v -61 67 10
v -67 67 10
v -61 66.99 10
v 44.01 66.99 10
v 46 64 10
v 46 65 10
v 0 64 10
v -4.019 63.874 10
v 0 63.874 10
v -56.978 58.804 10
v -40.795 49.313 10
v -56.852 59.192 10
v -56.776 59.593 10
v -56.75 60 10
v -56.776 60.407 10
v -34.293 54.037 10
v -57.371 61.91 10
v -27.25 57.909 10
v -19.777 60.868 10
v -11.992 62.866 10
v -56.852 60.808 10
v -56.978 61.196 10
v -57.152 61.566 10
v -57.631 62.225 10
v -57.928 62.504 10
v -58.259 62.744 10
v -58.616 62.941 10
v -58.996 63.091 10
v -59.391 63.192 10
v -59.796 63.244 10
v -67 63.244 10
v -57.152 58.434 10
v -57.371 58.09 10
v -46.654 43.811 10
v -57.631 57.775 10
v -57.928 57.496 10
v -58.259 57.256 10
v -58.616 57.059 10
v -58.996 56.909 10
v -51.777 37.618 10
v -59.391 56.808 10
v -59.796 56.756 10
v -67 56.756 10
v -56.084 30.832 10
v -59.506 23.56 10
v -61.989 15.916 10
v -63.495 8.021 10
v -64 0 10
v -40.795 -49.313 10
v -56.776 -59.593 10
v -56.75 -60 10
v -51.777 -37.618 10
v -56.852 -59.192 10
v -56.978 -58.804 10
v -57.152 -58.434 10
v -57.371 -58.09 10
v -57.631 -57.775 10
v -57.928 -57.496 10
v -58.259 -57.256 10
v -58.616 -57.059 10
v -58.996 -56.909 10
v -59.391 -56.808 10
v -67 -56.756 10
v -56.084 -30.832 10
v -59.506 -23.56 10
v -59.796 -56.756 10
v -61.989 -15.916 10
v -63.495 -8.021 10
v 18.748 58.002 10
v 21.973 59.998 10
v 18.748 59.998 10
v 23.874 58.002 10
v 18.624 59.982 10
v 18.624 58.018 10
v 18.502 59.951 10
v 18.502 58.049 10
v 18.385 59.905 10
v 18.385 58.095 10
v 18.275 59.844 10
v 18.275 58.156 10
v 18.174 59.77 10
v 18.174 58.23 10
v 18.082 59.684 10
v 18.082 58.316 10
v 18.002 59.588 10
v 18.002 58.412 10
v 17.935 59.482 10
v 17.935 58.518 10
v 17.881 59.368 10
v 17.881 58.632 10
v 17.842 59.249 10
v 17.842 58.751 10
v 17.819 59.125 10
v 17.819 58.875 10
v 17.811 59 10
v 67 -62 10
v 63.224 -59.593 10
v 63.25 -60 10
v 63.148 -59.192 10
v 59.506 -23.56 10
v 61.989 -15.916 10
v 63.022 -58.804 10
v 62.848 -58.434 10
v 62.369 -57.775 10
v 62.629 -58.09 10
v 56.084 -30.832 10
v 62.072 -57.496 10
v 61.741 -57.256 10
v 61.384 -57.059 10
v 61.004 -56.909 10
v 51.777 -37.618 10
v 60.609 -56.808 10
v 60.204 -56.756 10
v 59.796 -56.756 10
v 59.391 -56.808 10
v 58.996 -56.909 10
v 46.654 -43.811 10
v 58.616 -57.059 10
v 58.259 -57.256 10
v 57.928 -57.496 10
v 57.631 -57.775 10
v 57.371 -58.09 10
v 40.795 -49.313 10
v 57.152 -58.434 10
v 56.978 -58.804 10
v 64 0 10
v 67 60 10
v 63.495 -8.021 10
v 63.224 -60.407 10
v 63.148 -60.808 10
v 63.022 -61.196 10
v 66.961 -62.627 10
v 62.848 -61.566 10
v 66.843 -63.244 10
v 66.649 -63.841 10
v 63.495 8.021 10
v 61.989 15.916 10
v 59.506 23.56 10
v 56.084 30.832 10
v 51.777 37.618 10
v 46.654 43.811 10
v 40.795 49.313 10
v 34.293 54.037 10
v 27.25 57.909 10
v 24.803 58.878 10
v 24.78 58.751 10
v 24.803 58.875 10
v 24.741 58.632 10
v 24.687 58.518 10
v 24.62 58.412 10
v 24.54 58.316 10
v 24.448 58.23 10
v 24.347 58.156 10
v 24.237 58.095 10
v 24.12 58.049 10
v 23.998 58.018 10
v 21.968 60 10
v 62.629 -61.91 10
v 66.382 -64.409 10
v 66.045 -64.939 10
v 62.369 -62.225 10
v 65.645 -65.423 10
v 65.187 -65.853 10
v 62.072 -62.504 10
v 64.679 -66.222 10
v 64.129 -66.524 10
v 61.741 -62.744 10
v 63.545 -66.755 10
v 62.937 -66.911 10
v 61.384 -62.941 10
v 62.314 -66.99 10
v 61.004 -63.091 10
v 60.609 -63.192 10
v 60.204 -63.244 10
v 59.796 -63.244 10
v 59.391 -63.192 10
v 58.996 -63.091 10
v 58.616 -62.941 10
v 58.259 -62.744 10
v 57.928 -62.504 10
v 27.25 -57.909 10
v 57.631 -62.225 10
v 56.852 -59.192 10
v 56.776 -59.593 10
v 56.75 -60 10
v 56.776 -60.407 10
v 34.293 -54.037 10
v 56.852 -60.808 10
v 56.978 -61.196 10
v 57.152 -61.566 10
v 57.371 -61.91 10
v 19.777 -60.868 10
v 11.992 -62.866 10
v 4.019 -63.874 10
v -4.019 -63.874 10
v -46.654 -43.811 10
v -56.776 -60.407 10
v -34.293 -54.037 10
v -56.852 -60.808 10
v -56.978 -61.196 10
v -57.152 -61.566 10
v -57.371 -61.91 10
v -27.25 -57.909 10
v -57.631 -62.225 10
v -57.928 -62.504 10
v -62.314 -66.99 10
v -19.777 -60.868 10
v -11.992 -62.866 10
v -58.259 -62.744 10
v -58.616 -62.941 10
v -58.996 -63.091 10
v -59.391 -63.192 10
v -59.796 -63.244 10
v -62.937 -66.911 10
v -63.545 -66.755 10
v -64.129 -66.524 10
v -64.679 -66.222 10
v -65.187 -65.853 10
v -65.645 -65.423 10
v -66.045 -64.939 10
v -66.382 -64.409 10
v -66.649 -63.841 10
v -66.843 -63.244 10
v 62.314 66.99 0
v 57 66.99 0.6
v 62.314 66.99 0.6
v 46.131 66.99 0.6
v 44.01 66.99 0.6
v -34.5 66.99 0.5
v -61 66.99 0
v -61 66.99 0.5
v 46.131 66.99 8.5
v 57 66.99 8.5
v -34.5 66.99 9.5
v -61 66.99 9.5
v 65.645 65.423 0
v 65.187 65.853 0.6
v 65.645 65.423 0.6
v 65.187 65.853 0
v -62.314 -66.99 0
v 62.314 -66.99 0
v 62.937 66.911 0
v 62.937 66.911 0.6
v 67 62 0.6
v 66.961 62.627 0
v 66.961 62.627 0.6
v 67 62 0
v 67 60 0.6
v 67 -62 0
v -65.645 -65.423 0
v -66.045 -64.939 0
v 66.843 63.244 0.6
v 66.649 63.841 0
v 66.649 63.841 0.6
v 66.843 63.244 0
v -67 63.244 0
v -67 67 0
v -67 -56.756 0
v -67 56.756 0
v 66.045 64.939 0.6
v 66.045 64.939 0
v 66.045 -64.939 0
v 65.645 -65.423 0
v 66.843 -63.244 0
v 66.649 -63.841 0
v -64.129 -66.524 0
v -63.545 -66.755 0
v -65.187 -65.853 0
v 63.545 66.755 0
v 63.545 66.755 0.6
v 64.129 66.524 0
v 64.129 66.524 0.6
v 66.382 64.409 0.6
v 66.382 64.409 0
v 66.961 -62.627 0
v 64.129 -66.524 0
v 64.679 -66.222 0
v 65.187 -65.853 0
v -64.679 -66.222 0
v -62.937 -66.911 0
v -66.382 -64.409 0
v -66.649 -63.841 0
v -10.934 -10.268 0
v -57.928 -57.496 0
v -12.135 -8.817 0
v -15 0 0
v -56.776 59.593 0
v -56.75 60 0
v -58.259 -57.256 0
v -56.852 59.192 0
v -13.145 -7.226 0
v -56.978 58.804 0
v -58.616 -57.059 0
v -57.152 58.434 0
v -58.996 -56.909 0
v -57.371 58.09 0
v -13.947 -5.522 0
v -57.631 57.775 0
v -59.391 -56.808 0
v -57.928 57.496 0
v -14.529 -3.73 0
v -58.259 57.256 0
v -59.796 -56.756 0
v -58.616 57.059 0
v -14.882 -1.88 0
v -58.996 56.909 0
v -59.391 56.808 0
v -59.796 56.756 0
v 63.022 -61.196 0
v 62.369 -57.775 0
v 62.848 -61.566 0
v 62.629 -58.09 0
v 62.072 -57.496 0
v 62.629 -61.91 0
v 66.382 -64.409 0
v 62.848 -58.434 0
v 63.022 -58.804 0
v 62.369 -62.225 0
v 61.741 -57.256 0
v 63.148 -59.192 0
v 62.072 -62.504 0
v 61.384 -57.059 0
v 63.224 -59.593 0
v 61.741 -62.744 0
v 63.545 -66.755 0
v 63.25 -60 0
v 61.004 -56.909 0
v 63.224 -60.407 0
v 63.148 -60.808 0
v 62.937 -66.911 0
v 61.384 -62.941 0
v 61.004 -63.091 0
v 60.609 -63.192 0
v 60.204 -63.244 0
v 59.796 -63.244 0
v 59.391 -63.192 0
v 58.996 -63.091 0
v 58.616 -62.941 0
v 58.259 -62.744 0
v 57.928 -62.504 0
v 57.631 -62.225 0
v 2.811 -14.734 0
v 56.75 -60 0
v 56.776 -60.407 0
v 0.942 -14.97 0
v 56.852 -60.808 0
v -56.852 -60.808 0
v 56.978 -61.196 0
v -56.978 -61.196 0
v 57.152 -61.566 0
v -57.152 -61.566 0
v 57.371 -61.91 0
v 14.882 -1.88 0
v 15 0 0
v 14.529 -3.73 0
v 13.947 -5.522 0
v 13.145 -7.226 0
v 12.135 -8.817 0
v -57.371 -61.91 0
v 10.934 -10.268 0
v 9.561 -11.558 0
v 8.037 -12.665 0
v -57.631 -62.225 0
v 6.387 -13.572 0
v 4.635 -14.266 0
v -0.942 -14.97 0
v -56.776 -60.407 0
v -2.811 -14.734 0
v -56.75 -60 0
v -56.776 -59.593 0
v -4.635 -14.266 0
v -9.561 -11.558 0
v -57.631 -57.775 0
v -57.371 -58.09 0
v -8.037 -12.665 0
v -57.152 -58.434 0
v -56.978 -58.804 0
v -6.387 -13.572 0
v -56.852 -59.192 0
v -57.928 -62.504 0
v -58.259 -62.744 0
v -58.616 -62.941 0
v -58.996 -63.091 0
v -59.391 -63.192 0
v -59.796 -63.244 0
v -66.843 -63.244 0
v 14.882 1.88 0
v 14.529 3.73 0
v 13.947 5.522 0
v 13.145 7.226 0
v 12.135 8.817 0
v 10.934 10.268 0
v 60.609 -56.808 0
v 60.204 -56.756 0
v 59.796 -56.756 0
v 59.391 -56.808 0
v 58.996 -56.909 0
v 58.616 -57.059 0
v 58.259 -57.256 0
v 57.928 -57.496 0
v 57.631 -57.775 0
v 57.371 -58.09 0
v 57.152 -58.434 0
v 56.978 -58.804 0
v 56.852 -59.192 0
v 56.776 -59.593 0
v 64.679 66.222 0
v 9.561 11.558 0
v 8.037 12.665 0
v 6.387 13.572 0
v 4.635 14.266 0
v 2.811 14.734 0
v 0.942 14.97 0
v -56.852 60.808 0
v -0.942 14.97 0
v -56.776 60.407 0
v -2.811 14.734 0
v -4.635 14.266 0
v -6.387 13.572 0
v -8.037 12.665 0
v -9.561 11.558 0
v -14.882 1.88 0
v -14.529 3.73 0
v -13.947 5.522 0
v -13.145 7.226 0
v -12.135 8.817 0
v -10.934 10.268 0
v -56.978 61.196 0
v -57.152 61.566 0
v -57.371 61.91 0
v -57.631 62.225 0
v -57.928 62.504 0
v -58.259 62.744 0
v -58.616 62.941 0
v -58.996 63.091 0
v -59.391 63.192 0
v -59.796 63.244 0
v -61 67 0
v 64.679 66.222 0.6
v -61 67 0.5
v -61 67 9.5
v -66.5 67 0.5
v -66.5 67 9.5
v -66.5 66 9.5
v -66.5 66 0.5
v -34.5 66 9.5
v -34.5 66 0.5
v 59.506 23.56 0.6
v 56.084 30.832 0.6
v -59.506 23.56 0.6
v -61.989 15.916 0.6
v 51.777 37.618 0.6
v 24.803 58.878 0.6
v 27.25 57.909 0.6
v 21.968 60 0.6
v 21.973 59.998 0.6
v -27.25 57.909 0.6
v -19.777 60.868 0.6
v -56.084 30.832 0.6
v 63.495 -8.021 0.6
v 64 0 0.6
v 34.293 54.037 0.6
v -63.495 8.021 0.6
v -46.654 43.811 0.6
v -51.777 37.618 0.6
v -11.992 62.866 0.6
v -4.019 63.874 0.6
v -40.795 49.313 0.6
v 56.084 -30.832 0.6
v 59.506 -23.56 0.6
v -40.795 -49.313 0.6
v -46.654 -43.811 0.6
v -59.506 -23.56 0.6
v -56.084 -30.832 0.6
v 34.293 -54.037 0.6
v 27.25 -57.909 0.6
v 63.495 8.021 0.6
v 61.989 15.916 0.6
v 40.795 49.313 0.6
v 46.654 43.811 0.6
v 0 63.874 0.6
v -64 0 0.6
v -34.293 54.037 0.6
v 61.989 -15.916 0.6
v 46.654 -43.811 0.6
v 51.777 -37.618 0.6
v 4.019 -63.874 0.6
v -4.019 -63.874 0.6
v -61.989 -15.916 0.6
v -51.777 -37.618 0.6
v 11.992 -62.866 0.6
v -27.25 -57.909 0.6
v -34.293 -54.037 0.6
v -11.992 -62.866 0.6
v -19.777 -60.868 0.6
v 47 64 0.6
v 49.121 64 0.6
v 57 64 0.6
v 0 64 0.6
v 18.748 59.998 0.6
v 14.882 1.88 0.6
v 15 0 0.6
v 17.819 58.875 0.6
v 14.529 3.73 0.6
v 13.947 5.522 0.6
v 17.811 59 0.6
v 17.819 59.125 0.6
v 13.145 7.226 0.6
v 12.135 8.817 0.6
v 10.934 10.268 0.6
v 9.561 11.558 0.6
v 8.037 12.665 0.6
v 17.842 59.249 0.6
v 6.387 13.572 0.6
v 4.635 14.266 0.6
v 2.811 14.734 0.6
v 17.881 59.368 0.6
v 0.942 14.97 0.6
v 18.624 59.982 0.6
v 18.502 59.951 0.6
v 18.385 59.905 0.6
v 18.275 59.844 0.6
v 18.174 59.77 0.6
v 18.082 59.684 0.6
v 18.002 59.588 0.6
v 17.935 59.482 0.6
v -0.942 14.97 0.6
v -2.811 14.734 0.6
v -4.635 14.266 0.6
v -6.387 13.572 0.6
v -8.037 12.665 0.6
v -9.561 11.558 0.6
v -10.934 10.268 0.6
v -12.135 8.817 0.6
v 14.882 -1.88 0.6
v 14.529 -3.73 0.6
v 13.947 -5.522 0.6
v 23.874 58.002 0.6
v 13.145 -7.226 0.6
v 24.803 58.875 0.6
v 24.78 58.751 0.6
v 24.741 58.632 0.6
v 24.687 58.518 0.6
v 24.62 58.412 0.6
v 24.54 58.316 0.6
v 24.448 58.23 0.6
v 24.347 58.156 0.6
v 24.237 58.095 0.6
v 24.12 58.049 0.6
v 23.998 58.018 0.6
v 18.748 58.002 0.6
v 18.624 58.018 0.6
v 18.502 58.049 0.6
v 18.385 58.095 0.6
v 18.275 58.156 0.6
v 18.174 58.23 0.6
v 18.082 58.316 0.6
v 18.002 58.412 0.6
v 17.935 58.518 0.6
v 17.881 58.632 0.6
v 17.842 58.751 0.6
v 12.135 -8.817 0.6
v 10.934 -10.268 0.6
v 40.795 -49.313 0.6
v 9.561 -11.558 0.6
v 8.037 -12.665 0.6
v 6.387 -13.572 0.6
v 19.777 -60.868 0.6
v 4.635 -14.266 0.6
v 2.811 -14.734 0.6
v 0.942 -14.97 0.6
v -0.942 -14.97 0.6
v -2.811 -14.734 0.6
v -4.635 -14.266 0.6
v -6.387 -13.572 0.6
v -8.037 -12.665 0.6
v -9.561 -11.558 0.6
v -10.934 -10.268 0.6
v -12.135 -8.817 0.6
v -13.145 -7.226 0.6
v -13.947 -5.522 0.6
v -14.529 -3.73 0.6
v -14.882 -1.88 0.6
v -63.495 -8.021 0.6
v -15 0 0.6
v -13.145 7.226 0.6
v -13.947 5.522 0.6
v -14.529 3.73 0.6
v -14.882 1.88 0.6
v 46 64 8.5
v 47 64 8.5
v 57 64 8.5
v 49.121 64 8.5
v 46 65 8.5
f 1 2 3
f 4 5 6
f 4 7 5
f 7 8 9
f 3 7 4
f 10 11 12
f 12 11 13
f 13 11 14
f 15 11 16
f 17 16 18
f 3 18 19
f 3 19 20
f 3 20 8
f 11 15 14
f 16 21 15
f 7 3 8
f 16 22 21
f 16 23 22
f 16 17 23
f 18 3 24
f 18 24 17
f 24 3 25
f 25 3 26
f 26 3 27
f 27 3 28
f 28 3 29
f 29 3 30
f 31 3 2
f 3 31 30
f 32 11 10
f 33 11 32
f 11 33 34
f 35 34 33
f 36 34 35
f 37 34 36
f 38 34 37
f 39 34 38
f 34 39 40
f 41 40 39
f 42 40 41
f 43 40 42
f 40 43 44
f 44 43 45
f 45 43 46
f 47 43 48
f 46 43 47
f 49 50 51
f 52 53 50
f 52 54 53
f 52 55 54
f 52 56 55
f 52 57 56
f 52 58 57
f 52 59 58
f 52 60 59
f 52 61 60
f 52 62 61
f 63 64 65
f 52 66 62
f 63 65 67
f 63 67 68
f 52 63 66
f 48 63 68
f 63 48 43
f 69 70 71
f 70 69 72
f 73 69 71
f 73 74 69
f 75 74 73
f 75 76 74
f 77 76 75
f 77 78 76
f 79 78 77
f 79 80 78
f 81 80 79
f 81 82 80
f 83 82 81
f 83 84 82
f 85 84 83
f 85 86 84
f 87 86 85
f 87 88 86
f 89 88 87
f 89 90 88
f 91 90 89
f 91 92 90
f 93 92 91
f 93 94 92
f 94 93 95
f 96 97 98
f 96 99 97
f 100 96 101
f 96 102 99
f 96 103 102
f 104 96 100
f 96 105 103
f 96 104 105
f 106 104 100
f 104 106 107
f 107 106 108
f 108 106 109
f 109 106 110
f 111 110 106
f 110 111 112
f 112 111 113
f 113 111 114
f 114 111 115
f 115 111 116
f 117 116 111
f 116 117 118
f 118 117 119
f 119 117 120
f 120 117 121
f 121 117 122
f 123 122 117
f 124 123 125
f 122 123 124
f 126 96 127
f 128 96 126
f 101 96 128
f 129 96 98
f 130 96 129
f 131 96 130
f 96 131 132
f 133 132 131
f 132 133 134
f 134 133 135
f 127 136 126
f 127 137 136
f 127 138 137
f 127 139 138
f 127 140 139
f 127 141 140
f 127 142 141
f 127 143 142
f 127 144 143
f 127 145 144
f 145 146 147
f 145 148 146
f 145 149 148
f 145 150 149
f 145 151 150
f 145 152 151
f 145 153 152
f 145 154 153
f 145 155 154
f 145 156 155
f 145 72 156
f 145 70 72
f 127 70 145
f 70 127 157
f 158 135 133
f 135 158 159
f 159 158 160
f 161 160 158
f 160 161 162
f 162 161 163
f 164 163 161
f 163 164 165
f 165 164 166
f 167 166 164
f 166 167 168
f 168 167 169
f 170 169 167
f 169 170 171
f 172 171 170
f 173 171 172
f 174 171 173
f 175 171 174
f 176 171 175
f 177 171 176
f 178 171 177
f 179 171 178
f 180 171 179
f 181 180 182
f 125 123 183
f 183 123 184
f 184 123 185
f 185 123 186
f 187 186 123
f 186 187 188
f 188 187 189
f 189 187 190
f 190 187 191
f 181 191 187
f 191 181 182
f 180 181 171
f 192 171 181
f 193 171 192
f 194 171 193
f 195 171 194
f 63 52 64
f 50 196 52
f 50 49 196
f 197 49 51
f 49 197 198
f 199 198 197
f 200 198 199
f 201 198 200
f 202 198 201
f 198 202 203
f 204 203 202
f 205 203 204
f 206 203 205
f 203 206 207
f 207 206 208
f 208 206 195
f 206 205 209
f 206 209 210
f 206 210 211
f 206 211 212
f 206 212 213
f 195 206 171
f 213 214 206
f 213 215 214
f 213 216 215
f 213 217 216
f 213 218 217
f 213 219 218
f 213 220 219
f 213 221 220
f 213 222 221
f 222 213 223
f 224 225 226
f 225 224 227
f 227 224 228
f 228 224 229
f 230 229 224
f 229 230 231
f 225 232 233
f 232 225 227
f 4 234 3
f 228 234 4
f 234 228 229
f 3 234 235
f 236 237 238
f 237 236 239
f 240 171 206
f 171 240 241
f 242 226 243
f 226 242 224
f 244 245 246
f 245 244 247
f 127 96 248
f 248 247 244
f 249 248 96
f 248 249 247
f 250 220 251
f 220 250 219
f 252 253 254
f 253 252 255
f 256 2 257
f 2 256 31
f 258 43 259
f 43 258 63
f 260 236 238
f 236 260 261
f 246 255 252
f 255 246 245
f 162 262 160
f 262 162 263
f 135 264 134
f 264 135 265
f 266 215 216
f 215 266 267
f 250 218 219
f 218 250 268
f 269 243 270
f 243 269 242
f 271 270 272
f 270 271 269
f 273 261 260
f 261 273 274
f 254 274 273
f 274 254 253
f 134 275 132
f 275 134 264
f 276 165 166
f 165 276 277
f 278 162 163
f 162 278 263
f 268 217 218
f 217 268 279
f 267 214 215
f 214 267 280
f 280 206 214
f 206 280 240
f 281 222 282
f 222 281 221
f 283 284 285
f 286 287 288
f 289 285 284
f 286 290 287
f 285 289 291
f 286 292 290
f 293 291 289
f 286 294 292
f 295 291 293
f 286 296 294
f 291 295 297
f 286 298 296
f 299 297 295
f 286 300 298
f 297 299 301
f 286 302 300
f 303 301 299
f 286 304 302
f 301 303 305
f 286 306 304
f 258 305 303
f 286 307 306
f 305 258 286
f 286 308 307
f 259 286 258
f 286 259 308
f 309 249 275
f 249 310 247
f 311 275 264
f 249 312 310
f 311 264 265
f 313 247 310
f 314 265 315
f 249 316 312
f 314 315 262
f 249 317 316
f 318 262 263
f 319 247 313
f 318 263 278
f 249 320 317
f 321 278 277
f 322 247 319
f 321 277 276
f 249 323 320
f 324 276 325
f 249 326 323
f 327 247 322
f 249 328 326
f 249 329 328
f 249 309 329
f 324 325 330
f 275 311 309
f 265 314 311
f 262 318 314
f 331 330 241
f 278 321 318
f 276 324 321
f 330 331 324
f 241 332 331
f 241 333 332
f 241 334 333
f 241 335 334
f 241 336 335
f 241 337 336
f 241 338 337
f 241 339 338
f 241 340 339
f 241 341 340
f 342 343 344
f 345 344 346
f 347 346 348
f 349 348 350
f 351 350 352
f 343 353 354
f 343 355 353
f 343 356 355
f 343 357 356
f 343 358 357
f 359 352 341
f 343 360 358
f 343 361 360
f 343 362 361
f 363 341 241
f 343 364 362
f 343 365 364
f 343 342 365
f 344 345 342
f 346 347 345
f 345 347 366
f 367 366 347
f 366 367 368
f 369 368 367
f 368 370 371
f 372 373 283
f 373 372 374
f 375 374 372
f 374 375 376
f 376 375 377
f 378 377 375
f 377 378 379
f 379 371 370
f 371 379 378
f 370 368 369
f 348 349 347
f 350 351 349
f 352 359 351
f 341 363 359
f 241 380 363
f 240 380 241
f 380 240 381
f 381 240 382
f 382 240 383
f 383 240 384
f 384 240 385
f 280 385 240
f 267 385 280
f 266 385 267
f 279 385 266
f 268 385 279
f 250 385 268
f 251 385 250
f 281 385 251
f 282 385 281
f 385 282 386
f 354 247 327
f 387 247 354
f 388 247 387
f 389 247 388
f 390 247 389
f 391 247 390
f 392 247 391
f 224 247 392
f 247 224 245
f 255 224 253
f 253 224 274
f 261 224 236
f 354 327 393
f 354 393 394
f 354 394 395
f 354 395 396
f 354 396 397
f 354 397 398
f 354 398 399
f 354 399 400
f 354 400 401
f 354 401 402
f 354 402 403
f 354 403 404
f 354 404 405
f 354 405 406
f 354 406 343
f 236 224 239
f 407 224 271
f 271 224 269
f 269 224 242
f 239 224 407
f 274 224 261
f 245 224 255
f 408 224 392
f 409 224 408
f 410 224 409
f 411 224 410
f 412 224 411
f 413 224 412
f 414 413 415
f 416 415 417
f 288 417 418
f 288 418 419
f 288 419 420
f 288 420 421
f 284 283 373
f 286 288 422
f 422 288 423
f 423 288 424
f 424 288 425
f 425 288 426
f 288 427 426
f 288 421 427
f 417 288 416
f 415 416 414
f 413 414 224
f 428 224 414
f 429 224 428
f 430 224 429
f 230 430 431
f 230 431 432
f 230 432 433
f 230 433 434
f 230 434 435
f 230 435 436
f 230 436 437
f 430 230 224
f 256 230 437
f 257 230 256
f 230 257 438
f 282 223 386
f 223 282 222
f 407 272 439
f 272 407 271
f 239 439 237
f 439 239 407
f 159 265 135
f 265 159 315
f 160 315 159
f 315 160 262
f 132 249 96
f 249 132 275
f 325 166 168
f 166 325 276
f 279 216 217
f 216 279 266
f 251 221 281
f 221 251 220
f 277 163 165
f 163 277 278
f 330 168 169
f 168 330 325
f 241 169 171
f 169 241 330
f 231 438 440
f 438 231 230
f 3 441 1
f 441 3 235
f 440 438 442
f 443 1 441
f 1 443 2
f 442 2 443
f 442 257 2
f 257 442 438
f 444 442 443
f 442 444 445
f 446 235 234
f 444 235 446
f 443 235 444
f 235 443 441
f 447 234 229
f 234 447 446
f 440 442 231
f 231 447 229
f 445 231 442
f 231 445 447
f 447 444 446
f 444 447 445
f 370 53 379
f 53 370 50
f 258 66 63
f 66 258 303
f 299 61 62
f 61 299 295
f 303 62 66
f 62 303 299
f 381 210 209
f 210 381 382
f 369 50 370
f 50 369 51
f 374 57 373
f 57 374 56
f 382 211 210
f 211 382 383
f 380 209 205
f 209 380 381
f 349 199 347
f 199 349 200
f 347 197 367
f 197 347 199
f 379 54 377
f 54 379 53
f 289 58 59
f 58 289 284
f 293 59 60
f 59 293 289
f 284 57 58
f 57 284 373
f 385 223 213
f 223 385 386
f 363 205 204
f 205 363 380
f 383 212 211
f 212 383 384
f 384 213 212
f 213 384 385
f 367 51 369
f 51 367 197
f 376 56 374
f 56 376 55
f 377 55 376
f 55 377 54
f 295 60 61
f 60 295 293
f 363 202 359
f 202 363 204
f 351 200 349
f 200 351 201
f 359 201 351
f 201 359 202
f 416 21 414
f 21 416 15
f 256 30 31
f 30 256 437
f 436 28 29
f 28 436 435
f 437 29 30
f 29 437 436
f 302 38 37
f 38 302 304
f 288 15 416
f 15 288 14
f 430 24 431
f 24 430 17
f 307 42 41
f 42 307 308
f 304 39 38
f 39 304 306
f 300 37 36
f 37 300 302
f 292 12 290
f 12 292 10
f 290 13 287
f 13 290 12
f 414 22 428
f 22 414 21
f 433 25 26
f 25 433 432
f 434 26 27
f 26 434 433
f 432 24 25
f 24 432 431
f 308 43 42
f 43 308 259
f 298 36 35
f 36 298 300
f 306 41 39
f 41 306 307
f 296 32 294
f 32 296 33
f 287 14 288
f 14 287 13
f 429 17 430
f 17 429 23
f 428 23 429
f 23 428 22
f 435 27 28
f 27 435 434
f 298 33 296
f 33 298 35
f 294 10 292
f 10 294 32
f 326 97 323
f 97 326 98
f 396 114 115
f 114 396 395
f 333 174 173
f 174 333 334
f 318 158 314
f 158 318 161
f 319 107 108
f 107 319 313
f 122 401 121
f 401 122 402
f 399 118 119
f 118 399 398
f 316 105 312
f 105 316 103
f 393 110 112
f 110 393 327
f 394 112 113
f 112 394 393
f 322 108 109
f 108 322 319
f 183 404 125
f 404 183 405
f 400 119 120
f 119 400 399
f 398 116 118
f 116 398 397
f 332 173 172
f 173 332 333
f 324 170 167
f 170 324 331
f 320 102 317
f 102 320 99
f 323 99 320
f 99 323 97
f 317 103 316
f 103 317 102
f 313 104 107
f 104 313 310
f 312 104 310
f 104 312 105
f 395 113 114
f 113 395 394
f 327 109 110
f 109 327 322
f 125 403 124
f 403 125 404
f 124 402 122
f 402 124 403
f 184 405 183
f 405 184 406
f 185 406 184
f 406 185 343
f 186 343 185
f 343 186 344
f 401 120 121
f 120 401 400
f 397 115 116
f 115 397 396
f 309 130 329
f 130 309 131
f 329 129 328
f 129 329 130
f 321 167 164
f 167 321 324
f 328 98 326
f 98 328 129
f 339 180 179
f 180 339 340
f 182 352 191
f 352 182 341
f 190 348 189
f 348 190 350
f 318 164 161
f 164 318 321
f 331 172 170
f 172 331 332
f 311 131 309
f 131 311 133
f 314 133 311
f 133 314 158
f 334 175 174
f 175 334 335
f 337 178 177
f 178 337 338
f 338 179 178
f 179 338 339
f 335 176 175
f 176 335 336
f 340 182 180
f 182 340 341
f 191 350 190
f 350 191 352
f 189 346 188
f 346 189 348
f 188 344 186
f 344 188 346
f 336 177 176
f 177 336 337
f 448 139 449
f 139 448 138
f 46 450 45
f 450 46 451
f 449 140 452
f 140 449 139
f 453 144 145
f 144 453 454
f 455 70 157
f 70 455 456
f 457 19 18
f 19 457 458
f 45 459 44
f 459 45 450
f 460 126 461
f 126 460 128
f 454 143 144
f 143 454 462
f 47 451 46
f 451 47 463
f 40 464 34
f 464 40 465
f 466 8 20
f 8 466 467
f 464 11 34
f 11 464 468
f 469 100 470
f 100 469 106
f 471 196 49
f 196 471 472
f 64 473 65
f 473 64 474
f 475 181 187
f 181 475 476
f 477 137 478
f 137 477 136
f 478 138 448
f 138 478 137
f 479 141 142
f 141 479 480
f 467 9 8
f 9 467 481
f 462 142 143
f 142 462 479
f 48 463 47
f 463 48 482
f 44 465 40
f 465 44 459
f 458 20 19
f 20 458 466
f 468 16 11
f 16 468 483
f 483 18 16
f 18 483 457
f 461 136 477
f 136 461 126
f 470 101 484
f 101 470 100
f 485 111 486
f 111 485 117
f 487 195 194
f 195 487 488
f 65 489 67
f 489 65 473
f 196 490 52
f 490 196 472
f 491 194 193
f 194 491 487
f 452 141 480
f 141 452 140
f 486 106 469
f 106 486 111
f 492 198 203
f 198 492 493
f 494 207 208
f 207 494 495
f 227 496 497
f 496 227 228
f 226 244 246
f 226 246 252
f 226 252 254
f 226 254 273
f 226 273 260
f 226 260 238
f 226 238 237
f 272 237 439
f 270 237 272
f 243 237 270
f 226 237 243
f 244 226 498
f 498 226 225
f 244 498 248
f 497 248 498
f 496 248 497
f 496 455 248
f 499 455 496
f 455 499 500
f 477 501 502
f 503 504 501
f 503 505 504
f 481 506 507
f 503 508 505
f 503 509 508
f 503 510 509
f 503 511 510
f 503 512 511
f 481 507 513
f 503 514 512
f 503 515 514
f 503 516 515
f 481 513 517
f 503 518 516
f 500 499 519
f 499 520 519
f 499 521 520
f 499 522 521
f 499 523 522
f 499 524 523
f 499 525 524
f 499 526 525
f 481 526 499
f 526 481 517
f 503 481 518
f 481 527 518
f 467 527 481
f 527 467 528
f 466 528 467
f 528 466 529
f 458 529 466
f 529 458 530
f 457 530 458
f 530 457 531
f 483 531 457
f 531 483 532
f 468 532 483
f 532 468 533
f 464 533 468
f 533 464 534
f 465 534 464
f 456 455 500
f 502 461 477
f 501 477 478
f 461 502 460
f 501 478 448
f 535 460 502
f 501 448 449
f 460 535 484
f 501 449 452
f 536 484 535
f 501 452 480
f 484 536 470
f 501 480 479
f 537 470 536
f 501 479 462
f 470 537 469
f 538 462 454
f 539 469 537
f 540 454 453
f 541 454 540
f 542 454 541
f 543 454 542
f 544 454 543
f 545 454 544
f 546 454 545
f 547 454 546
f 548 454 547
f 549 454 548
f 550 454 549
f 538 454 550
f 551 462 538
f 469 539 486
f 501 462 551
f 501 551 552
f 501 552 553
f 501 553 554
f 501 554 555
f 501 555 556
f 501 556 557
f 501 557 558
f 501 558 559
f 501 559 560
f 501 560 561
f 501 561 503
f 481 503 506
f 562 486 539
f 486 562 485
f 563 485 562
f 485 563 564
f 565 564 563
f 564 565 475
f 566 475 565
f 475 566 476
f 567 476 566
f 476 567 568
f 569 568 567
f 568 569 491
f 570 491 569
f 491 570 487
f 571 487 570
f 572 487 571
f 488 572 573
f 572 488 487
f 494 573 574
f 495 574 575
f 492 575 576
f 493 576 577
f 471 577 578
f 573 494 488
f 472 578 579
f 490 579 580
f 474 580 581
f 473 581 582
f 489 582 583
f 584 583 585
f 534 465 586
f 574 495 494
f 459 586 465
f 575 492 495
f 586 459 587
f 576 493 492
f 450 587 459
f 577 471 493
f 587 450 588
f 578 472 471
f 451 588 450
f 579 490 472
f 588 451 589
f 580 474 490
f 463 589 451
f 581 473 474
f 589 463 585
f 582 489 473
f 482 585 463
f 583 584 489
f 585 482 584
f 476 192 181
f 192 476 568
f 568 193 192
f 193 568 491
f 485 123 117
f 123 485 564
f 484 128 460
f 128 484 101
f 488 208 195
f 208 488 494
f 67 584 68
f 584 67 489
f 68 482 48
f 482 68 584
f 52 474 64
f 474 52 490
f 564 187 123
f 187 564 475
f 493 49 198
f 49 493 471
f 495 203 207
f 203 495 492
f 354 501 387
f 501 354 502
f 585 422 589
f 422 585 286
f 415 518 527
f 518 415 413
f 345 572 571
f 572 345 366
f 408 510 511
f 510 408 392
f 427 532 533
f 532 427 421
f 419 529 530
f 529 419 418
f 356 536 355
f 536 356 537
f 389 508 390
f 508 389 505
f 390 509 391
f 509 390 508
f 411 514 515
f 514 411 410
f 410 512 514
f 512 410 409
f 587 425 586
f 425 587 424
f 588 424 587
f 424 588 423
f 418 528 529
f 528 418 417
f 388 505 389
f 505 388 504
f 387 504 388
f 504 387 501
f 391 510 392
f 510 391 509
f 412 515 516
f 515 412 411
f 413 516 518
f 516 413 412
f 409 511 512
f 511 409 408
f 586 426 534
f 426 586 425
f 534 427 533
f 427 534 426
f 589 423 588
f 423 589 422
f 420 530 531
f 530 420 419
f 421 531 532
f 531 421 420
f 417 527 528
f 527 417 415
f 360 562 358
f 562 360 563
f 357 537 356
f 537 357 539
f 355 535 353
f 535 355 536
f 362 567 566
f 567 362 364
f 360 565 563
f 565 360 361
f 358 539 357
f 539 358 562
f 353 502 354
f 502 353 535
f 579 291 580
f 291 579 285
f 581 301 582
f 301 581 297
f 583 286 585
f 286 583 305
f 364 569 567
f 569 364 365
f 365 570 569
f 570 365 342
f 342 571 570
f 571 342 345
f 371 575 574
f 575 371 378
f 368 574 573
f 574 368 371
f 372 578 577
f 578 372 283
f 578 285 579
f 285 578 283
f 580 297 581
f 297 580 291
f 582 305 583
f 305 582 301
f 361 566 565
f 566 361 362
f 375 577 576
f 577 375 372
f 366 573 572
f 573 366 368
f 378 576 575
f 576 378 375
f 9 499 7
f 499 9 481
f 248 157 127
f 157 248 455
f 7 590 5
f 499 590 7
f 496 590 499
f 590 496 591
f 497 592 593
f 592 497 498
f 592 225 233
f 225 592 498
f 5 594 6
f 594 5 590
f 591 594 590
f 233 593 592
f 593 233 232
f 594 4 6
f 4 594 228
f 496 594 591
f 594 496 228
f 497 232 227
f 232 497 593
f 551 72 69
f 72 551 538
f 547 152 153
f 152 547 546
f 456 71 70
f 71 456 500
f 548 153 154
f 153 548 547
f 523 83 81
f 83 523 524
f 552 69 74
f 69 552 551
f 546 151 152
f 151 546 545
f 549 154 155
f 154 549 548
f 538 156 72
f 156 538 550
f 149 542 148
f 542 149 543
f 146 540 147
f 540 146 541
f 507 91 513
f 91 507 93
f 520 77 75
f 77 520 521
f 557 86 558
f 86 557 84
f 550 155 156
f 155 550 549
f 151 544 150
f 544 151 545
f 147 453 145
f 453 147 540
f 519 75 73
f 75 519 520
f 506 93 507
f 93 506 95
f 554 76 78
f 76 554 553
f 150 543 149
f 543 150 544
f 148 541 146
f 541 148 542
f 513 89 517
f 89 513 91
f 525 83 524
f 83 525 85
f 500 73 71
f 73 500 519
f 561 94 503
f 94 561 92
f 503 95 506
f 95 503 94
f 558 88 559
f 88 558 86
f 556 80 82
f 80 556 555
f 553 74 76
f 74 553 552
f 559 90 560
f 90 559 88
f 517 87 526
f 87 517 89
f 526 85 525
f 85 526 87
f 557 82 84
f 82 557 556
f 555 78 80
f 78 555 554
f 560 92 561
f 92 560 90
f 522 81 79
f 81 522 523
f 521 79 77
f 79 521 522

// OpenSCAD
$fn = 50;


union() {
	difference() {
		union() {
			translate(v = [0, 0, 0]) {
				rotate(a = [0, 0, 0]) {
					hull() {
						translate(v = [-62.0000000000, 62.0000000000, 0]) {
							rotate(a = [0, 0, 0]) {
								translate(v = [0, 0, 0]) {
									rotate(a = [0, 0, 0]) {
										cylinder(h = 10, r = 5);
									}
								}
							}
						}
						translate(v = [62.0000000000, 62.0000000000, 0]) {
							rotate(a = [0, 0, 0]) {
								translate(v = [0, 0, 0]) {
									rotate(a = [0, 0, 0]) {
										cylinder(h = 10, r = 5);
									}
								}
							}
						}
						translate(v = [-62.0000000000, -62.0000000000, 0]) {
							rotate(a = [0, 0, 0]) {
								translate(v = [0, 0, 0]) {
									rotate(a = [0, 0, 0]) {
										cylinder(h = 10, r = 5);
									}
								}
							}
						}
						translate(v = [62.0000000000, -62.0000000000, 0]) {
							rotate(a = [0, 0, 0]) {
								translate(v = [0, 0, 0]) {
									rotate(a = [0, 0, 0]) {
										cylinder(h = 10, r = 5);
									}
								}
							}
						}
					}
				}
			}
			translate(v = [-67.0000000000, 61.0000000000, 0]) {
				rotate(a = [0, 0, 0]) {
					cube(size = [6, 6, 10]);
				}
			}
		}
		union() {
			#translate(v = [-66.5000000000, 66.0000000000, 0.5000000000]) {
				rotate(a = [0, 0, 0]) {
					cube(size = [32, 1, 9.0000000000]);
				}
			}
			translate(v = [-67.5000000000, -60.0000000000, -125]) {
				rotate(a = [0, 0, 0]) {
					hull() {
						translate(v = [7.5000000000, 0, 0]) {
							rotate(a = [0, 0, 0]) {
								translate(v = [0, 0, 0]) {
									rotate(a = [0, 0, 0]) {
										cylinder(h = 250, r = 3.2500000000);
									}
								}
							}
						}
						translate(v = [-7.5000000000, 0, 0]) {
							rotate(a = [0, 0, 0]) {
								translate(v = [0, 0, 0]) {
									rotate(a = [0, 0, 0]) {
										cylinder(h = 250, r = 3.2500000000);
									}
								}
							}
						}
					}
				}
			}
			translate(v = [-67.5000000000, 60.0000000000, -125]) {
				rotate(a = [0, 0, 0]) {
					hull() {
						translate(v = [7.5000000000, 0, 0]) {
							rotate(a = [0, 0, 0]) {
								translate(v = [0, 0, 0]) {
									rotate(a = [0, 0, 0]) {
										cylinder(h = 250, r = 3.2500000000);
									}
								}
							}
						}
						translate(v = [-7.5000000000, 0, 0]) {
							rotate(a = [0, 0, 0]) {
								translate(v = [0, 0, 0]) {
									rotate(a = [0, 0, 0]) {
										cylinder(h = 250, r = 3.2500000000);
									}
								}
							}
						}
					}
				}
			}
			translate(v = [60.0000000000, -60.0000000000, -125.0000000000]) {
				rotate(a = [0, 0, 0]) {
					cylinder(h = 250, r = 3.2500000000);
				}
			}
			translate(v = [0, 0, 0.6000000000]) {
				rotate(a = [0, 0, 0]) {
					cylinder(h = 12.4000000000, r = 64.0000000000);
				}
			}
			translate(v = [0, 0, -5.0000000000]) {
				rotate(a = [0, 0, 0]) {
					cylinder(h = 10, r = 15.0000000000);
				}
			}
			translate(v = [0.0000000000, 60.0000000000, 0.6000000000]) {
				rotate(a = [0, 0, 0]) {
					cube(size = [67.0000000000, 4, 12.4000000000]);
				}
			}
			translate(v = [57.0000000000, 60.0000000000, 0.6000000000]) {
				rotate(a = [0, 0, 0]) {
					cube(size = [10, 7, 12.4000000000]);
				}
			}
			translate(v = [46.0000000000, 60.0000000000, 8.5000000000]) {
				rotate(a = [0, 0, 0]) {
					cube(size = [21, 7, 1.5000000000]);
				}
			}
			translate(v = [43.2500000000, 67.7500000000, 0.6000000000]) {
				rotate(a = [0, 0, -45]) {
					cube(size = [7.5000000000, 1.5000000000, 12.4000000000]);
				}
			}
			translate(v = [12.0610000000, 58.0000000000, 0.6000000000]) {
				rotate(a = [0, 0, 0]) {
					cube(size = [7.5000000000, 2, 9.4000000000]);
				}
			}
		}
	}
	union() {
		translate(v = [21.3110000000, 59.0000000000, 0]) {
			rotate(a = [0, 0, 0]) {
				hull() {
					translate(v = [2.5000000000, 0, 0]) {
						rotate(a = [0, 0, 0]) {
							#translate(v = [0, 0, 0]) {
								rotate(a = [0, 0, 0]) {
									cylinder(h = 10, r = 1.0000000000);
								}
							}
						}
					}
					translate(v = [-2.5000000000, 0, 0]) {
						rotate(a = [0, 0, 0]) {
							#translate(v = [0, 0, 0]) {
								rotate(a = [0, 0, 0]) {
									cylinder(h = 10, r = 1.0000000000);
								}
							}
						}
					}
				}
			}
		}
	}
}
